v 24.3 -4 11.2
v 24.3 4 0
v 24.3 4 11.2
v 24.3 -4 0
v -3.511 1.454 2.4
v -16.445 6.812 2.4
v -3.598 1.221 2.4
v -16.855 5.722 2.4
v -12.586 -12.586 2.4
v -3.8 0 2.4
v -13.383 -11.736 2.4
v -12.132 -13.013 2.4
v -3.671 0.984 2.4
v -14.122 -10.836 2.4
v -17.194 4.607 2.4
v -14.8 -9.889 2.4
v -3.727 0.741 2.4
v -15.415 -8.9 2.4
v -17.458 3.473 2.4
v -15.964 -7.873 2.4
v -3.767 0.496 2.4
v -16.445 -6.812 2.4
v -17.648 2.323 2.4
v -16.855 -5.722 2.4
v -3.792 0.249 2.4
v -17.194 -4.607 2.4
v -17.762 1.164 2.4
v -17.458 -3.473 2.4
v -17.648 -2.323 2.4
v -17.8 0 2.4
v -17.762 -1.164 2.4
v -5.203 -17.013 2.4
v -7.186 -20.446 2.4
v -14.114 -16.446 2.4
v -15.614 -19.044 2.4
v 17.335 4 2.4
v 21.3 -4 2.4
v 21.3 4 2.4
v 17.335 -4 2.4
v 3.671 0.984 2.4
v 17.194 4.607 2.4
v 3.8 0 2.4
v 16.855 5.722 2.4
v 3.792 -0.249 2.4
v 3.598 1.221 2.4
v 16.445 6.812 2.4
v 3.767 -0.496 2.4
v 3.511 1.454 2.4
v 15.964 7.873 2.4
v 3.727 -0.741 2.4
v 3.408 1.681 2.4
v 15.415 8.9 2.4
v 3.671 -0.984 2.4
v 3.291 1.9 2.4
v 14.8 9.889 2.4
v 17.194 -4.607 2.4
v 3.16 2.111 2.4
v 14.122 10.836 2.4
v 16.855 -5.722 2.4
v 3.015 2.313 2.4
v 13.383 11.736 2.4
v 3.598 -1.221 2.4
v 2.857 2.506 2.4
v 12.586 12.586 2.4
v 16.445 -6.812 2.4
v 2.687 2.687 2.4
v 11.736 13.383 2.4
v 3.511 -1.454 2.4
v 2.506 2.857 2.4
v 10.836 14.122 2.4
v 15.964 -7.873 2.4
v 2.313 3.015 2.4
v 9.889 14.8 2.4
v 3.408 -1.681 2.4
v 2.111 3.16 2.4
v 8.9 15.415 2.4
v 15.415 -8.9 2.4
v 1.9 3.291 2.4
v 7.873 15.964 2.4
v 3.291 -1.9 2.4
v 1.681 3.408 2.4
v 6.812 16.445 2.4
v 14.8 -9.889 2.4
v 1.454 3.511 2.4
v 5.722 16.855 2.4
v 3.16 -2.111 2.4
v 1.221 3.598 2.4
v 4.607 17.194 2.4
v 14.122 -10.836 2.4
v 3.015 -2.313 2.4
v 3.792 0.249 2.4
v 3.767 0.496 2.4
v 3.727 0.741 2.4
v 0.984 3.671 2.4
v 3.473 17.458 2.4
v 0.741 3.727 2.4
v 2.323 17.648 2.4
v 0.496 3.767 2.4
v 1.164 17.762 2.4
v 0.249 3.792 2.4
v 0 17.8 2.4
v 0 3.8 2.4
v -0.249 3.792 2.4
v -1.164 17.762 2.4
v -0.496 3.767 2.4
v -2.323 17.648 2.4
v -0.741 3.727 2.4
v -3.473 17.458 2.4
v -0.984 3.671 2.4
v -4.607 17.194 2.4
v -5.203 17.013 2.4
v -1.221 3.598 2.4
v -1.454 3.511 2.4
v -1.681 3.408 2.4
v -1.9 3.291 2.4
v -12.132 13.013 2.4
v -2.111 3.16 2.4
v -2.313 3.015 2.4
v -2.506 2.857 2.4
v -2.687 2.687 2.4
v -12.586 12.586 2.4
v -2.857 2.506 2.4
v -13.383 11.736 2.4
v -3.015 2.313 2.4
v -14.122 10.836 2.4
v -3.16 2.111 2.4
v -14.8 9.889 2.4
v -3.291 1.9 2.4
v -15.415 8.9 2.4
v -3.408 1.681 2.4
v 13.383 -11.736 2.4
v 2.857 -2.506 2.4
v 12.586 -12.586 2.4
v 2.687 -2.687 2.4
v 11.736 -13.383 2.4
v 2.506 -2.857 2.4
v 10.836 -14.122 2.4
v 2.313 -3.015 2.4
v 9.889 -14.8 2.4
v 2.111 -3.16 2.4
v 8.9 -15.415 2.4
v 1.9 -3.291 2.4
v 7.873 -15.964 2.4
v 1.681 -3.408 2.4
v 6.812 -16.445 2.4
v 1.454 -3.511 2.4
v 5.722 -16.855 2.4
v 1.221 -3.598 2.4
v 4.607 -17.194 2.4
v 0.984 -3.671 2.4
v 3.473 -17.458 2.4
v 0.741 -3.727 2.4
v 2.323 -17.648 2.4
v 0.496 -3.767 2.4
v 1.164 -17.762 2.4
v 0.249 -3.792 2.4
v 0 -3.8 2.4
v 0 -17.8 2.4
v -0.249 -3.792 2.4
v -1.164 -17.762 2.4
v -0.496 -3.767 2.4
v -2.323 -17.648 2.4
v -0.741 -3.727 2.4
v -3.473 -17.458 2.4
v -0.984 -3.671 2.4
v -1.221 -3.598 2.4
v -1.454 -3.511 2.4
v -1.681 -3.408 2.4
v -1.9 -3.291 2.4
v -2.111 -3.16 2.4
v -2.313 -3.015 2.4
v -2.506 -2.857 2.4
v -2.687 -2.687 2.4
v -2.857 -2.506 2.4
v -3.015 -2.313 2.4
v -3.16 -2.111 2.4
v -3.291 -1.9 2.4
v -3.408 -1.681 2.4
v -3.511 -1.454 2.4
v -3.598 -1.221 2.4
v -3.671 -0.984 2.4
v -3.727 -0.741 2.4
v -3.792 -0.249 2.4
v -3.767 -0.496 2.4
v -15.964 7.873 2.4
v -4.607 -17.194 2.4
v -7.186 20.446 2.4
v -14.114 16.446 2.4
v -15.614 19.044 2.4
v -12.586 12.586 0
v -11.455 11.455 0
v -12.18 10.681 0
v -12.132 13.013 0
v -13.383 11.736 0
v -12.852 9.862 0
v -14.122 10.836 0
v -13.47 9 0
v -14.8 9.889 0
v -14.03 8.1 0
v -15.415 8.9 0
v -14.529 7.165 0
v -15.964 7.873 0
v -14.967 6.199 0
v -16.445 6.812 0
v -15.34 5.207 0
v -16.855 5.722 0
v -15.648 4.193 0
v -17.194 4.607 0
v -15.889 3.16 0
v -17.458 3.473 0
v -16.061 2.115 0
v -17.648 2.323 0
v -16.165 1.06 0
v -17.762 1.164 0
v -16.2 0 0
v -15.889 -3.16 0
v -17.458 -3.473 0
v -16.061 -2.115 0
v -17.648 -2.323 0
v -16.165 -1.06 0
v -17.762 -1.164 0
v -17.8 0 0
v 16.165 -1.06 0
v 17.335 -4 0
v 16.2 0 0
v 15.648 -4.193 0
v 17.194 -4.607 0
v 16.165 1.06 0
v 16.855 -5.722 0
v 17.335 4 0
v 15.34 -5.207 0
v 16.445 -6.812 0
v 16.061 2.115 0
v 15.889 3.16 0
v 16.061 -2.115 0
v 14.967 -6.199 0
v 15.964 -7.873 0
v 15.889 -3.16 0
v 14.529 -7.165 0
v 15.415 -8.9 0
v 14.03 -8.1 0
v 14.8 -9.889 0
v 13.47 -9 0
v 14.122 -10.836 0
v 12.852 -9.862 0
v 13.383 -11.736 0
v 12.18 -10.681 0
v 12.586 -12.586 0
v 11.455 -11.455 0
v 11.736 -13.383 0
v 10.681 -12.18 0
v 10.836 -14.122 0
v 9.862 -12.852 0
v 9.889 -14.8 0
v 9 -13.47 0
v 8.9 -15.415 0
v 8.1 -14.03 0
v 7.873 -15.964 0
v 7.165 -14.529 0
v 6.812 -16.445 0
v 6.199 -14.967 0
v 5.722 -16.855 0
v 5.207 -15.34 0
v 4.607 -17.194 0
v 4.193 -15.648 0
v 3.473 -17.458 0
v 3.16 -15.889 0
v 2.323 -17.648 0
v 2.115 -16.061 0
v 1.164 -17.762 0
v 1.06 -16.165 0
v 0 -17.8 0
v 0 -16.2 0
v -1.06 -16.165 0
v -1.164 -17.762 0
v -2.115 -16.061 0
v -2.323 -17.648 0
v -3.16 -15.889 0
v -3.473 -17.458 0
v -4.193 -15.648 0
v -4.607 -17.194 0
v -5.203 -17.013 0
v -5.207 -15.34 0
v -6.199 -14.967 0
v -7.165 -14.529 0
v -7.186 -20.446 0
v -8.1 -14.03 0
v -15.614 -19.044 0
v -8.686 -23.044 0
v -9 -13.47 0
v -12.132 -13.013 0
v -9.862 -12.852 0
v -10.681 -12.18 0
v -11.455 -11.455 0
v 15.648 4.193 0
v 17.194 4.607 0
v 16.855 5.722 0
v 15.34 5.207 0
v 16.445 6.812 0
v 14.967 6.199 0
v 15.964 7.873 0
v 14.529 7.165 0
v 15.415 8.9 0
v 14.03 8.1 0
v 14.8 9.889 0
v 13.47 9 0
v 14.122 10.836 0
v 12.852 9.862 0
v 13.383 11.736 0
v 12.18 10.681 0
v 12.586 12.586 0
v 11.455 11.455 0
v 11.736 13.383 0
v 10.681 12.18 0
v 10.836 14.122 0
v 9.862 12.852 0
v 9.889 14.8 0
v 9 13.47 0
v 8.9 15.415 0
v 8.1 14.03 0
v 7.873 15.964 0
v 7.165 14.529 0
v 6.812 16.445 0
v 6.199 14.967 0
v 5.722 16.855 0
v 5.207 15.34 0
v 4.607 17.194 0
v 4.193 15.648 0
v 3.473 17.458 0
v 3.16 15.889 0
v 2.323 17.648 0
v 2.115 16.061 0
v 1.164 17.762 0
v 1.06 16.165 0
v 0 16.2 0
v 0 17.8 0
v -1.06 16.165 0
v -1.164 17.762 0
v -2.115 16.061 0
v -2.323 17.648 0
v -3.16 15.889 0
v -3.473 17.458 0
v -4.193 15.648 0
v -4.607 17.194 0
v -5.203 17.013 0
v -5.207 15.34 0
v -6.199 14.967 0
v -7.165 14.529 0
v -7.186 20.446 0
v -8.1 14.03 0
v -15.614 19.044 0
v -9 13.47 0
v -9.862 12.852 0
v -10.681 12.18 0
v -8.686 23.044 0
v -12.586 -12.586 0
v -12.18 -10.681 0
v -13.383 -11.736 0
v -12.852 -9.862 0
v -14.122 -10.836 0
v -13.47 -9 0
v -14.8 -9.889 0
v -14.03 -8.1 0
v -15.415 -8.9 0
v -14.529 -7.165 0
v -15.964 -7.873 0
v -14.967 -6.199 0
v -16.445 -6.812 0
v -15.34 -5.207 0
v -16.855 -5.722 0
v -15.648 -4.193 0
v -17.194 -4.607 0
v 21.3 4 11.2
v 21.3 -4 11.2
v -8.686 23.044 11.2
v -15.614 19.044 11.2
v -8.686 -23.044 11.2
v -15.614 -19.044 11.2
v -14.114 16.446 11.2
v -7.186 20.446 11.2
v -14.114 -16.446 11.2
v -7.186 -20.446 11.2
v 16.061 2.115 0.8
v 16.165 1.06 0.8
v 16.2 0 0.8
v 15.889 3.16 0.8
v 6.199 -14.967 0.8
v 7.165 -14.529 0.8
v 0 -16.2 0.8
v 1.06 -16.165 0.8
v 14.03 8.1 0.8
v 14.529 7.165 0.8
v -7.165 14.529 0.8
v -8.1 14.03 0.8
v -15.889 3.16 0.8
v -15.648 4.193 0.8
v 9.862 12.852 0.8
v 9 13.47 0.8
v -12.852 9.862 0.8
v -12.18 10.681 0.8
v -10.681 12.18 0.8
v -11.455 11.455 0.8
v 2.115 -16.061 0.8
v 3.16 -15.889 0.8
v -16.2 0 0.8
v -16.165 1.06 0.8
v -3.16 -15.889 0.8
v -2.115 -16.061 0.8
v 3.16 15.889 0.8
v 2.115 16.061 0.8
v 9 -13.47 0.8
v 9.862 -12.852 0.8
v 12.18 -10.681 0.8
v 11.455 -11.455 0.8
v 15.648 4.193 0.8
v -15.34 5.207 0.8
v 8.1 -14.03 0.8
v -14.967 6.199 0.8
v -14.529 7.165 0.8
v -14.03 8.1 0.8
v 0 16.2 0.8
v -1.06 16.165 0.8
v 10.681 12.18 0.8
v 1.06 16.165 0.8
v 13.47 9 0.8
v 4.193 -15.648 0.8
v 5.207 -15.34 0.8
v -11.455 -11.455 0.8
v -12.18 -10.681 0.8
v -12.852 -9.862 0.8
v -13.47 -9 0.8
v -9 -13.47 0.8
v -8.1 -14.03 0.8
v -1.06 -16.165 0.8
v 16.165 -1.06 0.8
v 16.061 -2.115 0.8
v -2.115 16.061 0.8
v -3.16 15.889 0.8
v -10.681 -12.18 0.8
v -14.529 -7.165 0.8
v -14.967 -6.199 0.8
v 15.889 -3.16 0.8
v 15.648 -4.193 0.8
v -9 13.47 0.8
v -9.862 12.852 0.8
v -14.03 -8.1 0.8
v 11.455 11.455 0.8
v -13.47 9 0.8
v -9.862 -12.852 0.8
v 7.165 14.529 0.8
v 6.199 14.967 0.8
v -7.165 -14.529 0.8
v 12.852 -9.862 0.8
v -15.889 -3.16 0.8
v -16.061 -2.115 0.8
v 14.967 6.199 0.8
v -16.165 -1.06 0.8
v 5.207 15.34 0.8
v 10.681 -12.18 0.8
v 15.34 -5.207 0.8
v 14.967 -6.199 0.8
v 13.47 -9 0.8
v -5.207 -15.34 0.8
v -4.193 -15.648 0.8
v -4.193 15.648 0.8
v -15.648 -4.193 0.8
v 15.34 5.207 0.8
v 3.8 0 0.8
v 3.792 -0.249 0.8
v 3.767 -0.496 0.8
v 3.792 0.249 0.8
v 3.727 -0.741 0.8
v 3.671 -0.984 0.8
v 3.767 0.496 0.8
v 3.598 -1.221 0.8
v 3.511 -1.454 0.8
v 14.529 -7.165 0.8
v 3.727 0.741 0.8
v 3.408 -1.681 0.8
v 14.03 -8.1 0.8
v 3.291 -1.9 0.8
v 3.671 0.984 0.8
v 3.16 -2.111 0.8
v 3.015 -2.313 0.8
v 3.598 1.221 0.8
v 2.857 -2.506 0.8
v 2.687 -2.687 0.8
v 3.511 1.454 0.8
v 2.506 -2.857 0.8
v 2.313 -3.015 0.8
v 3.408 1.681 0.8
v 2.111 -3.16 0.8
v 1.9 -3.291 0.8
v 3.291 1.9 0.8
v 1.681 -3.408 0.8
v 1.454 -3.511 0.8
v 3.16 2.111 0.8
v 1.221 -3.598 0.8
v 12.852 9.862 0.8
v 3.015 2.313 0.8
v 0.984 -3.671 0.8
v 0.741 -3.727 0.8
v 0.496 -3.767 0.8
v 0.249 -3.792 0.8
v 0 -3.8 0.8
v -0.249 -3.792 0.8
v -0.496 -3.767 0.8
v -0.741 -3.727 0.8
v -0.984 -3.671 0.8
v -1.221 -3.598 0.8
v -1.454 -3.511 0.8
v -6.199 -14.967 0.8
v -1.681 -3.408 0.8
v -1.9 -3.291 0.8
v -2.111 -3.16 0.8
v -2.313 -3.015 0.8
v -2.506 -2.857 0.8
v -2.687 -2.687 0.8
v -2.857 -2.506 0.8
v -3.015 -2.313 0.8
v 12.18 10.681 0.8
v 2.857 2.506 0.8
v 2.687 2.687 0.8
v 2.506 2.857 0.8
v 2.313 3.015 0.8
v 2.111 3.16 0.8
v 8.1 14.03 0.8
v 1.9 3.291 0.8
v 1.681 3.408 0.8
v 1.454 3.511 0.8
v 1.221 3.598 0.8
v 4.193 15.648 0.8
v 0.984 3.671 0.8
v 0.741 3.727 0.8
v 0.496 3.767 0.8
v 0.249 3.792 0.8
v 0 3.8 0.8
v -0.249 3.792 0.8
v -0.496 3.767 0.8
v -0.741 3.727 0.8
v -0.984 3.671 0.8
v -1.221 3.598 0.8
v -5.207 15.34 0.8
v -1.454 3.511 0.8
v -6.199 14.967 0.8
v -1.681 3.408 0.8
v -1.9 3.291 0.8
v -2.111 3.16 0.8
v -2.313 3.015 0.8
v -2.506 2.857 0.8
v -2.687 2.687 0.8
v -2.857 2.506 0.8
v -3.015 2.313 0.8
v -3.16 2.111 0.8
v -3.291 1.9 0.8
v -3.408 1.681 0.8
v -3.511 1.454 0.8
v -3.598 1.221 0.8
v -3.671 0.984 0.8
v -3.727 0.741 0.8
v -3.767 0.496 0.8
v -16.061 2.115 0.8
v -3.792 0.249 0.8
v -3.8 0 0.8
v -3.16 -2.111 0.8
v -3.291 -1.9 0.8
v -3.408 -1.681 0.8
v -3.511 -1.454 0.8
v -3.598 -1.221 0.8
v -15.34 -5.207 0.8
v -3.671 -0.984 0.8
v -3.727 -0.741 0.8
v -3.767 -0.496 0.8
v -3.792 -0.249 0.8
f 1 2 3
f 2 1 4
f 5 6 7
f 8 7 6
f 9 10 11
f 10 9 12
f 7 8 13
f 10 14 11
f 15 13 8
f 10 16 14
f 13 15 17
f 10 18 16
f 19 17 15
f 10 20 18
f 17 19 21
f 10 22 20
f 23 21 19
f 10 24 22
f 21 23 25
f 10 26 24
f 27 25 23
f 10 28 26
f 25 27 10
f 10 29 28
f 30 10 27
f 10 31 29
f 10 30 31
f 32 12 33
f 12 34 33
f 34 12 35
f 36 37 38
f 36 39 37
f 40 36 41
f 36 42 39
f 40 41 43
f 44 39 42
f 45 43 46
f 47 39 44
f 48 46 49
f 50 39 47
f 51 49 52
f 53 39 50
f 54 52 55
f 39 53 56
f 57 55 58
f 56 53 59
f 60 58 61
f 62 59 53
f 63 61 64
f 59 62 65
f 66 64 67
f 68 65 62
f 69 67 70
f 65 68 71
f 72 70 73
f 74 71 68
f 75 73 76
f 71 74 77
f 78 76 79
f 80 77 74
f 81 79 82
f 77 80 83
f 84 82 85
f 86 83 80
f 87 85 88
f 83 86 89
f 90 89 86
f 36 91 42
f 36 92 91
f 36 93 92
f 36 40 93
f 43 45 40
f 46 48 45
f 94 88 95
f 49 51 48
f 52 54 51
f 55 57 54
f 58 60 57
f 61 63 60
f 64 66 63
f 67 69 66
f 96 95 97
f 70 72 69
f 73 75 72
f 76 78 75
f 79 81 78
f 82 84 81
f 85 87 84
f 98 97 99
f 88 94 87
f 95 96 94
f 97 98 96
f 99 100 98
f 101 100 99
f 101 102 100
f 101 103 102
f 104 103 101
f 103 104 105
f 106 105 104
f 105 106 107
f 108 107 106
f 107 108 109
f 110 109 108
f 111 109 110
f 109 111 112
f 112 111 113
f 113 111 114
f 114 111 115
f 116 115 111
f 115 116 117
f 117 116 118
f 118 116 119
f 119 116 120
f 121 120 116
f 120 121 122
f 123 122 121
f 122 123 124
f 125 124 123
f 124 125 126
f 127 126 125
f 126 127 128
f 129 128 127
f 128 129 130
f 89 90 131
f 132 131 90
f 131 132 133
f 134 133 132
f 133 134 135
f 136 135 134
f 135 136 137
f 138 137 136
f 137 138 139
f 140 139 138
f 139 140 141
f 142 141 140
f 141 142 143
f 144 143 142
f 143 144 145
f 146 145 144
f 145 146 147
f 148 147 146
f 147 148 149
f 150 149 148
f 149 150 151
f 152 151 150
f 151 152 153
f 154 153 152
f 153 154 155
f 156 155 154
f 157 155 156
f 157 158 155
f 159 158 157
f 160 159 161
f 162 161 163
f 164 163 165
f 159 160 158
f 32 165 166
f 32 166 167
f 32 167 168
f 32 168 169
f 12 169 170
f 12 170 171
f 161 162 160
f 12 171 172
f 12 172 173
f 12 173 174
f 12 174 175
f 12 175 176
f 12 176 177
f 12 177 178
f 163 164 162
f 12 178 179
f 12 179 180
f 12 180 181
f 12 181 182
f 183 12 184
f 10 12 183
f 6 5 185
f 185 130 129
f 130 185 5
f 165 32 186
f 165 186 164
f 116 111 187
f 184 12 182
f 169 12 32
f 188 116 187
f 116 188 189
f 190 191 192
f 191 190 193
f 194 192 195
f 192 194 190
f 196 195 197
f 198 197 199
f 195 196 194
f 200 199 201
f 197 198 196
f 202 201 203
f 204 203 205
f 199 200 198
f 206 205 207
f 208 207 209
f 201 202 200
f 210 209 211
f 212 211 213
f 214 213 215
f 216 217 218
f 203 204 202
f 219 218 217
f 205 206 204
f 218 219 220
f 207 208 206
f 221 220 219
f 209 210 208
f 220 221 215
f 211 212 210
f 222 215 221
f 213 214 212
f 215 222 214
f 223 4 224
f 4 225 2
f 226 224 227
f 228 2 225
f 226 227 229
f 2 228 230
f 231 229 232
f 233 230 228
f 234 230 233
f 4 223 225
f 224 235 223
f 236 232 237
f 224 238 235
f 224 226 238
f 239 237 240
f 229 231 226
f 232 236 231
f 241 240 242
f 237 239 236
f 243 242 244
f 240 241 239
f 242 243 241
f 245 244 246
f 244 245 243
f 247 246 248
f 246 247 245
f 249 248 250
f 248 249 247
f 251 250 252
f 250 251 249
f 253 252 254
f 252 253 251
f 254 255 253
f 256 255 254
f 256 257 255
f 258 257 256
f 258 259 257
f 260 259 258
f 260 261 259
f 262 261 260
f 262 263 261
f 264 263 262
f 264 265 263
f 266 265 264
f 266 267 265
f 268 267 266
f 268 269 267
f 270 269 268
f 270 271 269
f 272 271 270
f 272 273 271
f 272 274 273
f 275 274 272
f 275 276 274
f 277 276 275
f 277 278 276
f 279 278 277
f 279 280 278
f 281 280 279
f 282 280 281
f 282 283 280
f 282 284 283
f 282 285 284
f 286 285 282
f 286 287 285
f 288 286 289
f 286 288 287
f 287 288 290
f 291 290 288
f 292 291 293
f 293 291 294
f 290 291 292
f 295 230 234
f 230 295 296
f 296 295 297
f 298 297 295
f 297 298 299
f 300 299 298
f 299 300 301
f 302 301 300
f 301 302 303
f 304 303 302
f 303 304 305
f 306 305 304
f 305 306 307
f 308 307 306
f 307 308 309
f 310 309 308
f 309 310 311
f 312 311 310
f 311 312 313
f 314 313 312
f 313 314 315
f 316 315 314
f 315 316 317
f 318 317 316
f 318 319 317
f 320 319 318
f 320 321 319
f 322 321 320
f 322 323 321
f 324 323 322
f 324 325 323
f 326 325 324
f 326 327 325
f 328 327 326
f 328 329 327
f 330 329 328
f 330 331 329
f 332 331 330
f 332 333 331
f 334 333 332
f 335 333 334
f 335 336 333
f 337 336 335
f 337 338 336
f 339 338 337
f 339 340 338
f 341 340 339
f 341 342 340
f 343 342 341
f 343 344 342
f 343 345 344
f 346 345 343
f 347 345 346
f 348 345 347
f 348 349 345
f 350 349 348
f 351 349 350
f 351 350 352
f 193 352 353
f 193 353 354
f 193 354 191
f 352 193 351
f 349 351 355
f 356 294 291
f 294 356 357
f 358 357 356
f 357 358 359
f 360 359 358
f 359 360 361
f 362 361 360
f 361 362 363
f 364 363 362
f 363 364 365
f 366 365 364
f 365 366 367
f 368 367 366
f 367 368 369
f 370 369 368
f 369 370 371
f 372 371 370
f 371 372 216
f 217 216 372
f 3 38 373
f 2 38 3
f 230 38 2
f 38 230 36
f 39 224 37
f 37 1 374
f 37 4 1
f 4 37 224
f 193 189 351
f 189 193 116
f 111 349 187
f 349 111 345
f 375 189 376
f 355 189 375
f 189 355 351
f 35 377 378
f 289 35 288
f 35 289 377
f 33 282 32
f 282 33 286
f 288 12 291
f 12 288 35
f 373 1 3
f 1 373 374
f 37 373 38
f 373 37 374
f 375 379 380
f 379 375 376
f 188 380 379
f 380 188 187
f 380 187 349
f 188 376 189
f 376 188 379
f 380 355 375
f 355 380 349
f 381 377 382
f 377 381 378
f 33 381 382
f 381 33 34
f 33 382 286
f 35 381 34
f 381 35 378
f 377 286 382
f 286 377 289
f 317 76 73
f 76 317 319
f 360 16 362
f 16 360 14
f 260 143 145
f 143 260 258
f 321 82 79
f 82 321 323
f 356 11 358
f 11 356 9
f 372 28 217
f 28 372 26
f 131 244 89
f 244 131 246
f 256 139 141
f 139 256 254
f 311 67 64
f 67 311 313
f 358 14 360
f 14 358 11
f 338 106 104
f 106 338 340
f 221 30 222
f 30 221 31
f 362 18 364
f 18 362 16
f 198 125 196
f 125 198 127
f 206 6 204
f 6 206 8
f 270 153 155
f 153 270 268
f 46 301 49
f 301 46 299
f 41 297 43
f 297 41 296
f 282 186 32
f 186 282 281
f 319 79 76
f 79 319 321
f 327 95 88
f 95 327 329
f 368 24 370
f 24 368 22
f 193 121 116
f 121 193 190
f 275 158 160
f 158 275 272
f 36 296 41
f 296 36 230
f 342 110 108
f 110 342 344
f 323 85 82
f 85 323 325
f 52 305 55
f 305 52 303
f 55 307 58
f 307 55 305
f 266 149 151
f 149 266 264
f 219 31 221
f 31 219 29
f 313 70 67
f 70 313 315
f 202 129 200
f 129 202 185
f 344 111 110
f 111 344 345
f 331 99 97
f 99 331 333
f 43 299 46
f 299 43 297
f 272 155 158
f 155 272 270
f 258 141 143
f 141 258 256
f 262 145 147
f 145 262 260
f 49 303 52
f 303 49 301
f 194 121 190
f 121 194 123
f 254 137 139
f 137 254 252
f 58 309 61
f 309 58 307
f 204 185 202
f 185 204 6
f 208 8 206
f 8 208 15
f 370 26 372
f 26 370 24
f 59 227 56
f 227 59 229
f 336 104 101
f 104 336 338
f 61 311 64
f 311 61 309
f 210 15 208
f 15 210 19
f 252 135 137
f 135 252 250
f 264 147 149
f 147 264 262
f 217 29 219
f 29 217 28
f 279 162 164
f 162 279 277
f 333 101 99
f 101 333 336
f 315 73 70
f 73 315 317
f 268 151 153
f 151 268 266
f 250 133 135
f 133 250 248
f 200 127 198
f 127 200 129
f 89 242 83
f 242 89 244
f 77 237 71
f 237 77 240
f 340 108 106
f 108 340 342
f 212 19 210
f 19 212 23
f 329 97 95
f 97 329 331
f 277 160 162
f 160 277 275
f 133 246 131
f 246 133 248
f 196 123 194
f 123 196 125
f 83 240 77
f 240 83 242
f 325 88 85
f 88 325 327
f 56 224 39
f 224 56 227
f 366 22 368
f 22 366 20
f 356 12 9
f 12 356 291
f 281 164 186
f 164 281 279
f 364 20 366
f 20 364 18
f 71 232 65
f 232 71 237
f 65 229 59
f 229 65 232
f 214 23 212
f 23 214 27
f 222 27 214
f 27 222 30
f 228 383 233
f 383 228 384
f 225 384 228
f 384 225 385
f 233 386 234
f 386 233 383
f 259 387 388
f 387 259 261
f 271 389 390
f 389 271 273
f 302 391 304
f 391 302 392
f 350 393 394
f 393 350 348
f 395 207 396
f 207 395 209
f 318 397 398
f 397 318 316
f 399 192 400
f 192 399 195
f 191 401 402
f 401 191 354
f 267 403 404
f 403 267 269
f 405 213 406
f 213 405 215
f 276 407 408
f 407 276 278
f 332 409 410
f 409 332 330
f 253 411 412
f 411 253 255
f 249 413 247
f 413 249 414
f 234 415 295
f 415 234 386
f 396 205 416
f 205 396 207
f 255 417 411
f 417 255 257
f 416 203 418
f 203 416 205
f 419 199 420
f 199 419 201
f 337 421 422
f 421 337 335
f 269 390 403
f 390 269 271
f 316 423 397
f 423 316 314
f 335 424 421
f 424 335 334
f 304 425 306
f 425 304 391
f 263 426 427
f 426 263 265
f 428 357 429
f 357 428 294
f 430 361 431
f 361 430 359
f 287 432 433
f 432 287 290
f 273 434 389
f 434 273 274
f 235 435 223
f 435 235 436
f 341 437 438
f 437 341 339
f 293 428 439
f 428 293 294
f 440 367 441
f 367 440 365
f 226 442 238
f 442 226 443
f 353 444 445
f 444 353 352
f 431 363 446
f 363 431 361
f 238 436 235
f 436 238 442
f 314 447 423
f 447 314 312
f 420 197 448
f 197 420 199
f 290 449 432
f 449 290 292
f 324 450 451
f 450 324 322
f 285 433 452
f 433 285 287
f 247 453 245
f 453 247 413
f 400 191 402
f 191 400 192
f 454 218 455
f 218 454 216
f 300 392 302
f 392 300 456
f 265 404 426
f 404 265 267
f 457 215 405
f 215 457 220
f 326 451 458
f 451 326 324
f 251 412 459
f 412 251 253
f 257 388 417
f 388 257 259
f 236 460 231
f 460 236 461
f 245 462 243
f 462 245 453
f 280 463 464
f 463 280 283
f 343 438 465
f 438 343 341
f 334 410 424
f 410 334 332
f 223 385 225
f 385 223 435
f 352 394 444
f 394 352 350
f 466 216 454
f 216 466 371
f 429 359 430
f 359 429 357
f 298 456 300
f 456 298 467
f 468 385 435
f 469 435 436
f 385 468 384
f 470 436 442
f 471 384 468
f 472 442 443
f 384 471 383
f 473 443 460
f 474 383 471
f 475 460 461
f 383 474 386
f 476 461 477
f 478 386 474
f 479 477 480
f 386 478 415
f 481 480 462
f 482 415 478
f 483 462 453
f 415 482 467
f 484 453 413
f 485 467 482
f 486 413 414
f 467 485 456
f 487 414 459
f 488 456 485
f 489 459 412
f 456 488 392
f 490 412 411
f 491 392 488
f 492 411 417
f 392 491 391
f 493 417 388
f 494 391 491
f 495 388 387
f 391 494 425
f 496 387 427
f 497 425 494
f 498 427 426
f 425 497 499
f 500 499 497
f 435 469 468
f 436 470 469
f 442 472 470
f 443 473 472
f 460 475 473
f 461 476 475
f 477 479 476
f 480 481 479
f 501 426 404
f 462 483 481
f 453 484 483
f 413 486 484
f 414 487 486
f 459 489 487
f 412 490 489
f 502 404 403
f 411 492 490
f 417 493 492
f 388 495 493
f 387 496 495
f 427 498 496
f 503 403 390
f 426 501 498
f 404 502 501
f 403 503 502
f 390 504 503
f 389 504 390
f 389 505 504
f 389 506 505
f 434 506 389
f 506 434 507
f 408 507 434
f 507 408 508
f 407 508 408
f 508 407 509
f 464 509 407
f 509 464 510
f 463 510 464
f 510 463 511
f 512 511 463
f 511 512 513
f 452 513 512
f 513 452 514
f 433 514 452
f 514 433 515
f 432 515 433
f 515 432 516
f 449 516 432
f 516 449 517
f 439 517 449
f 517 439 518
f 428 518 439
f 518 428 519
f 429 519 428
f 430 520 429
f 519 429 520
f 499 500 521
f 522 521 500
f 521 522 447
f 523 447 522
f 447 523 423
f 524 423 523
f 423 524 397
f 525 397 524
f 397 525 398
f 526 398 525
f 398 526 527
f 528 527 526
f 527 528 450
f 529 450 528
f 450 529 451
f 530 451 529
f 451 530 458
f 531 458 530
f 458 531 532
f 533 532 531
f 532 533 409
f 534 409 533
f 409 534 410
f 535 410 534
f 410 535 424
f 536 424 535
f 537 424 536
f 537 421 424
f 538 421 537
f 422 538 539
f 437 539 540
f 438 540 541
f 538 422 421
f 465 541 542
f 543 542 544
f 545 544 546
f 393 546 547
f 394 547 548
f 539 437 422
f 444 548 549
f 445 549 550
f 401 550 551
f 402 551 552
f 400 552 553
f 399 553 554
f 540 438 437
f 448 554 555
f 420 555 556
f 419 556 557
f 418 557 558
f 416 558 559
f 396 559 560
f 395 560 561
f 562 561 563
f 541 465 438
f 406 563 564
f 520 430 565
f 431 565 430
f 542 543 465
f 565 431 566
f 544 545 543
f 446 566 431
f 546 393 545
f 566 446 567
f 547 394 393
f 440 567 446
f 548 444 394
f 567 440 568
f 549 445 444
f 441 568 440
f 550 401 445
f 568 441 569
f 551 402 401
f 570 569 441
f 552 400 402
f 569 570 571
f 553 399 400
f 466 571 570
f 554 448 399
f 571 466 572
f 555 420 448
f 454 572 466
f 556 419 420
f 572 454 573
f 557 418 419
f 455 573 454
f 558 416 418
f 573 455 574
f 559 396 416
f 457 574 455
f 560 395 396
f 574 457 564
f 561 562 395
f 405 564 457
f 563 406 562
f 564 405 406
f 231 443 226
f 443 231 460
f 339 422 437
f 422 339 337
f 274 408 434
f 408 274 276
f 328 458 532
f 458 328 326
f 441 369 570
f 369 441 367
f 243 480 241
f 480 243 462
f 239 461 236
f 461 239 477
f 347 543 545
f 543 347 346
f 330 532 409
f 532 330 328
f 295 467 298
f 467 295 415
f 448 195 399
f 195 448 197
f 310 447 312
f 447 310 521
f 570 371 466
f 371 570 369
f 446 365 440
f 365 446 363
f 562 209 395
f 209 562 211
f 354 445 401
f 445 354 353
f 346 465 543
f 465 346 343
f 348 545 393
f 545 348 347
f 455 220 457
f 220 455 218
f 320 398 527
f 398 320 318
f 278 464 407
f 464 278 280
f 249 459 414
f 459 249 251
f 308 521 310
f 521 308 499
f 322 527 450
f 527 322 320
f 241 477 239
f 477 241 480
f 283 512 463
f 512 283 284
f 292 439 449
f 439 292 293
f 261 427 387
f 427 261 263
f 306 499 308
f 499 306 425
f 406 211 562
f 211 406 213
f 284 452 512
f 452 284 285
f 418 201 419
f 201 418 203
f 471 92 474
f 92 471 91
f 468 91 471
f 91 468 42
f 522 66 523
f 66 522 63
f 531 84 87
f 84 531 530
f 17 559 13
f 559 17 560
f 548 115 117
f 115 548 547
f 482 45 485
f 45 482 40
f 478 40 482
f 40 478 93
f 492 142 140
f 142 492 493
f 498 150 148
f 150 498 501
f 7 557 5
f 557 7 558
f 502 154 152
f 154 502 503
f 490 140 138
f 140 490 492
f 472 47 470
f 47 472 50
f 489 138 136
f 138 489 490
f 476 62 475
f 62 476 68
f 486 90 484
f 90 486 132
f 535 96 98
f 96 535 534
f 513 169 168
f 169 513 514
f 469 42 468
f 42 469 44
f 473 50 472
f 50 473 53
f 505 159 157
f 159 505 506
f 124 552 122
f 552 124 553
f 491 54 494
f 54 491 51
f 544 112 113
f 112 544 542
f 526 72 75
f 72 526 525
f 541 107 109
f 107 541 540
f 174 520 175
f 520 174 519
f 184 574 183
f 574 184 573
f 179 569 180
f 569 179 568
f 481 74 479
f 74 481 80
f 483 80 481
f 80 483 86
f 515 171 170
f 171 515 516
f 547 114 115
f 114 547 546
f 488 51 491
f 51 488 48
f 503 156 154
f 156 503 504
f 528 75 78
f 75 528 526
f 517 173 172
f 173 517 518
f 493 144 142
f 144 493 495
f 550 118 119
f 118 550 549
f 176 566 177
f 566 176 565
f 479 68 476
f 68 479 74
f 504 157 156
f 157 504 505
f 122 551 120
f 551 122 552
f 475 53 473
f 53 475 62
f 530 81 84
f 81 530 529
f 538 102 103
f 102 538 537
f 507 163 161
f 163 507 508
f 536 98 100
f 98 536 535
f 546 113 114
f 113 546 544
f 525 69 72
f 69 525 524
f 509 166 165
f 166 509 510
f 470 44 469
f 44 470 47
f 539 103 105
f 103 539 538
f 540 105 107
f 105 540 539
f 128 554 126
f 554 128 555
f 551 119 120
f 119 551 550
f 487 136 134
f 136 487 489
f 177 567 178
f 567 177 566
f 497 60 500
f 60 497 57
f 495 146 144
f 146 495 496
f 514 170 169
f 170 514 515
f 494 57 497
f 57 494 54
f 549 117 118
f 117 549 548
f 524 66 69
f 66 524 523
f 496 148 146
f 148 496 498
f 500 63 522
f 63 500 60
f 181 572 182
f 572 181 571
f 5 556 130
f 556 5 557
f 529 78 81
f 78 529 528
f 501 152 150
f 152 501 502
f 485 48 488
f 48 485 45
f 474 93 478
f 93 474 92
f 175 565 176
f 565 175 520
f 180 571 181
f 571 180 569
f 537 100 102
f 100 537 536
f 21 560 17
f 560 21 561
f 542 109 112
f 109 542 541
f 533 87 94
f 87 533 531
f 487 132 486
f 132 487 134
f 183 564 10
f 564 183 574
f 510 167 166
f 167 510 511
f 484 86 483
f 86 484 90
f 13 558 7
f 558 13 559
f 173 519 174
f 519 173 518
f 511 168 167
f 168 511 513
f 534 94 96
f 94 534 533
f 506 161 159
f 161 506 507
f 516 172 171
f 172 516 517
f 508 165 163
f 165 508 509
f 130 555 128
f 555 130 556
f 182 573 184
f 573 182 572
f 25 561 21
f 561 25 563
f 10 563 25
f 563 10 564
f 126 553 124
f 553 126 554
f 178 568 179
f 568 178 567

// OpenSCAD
// Rotor hub: the part that turns. It sits on top of the motor's rotor and carries the ring.
// Rotor is a 32 mm cup (outer-rotor motor): the whole 32 mm outside turns. Its top face is FLAT (the magnet boss is on the other face).
//
// Design: a flat disc that sits on the rotor top, locates on the Ø32 outside (a shallow pocket), then three
// arms reach out past the 32 mm rotor and up to the ring's inside wall. Glue (CA/epoxy) the disc to
// the rotor top; DO NOT press it onto the shaft side. The hub never touches the column or the display carrier.
include <params.scad>

rim_pocket   = motor_od + 0.4;             // pocket for the rotor top edge
rim_depth    = hub_rim_depth;              // 0.8
clear_col    = 7.6;                        // hole in the middle: column OD 5.6 + 2 mm. The hub must NOT touch the column
arm_w        = 8;                          // PROPOSAL
arm_len_r    = ring_id / 2 + 2.8;          // walls end 0.3 mm short of the ring pocket floor (pocket runs r = ring_id/2-0.5 .. +3.3)
ring_seat_h  = ring_h - 2;                 // how far up the arms climb along the ring inside

module rotor_hub() {
    difference() {
        union() {
            // flat disc on the rotor, 32 mm wide so the whole top face is used for gluing
            cylinder(d = rim_pocket + 3.2, h = hub_t);
            // three arms from the disc out to the ring
            for (a = [0, 120, 240])
                rotate([0, 0, a]) translate([0, -arm_w / 2, 0]) cube([arm_len_r, arm_w, hub_t]);
            // vertical ring seat: three short walls, each one a segment of the ring inside wall
            for (a = [0, 120, 240])
                rotate([0, 0, a]) translate([arm_len_r - 3, -arm_w / 2, 0]) cube([3, arm_w, ring_seat_h]);
        }
        // pocket on the underside for the rotor top edge
        translate([0, 0, -0.01]) cylinder(d = rim_pocket, h = rim_depth + 0.01);
        // clear hole for the column and wires
        translate([0, 0, -1]) cylinder(d = clear_col, h = hub_t + 2);
    }
}

rotor_hub();
